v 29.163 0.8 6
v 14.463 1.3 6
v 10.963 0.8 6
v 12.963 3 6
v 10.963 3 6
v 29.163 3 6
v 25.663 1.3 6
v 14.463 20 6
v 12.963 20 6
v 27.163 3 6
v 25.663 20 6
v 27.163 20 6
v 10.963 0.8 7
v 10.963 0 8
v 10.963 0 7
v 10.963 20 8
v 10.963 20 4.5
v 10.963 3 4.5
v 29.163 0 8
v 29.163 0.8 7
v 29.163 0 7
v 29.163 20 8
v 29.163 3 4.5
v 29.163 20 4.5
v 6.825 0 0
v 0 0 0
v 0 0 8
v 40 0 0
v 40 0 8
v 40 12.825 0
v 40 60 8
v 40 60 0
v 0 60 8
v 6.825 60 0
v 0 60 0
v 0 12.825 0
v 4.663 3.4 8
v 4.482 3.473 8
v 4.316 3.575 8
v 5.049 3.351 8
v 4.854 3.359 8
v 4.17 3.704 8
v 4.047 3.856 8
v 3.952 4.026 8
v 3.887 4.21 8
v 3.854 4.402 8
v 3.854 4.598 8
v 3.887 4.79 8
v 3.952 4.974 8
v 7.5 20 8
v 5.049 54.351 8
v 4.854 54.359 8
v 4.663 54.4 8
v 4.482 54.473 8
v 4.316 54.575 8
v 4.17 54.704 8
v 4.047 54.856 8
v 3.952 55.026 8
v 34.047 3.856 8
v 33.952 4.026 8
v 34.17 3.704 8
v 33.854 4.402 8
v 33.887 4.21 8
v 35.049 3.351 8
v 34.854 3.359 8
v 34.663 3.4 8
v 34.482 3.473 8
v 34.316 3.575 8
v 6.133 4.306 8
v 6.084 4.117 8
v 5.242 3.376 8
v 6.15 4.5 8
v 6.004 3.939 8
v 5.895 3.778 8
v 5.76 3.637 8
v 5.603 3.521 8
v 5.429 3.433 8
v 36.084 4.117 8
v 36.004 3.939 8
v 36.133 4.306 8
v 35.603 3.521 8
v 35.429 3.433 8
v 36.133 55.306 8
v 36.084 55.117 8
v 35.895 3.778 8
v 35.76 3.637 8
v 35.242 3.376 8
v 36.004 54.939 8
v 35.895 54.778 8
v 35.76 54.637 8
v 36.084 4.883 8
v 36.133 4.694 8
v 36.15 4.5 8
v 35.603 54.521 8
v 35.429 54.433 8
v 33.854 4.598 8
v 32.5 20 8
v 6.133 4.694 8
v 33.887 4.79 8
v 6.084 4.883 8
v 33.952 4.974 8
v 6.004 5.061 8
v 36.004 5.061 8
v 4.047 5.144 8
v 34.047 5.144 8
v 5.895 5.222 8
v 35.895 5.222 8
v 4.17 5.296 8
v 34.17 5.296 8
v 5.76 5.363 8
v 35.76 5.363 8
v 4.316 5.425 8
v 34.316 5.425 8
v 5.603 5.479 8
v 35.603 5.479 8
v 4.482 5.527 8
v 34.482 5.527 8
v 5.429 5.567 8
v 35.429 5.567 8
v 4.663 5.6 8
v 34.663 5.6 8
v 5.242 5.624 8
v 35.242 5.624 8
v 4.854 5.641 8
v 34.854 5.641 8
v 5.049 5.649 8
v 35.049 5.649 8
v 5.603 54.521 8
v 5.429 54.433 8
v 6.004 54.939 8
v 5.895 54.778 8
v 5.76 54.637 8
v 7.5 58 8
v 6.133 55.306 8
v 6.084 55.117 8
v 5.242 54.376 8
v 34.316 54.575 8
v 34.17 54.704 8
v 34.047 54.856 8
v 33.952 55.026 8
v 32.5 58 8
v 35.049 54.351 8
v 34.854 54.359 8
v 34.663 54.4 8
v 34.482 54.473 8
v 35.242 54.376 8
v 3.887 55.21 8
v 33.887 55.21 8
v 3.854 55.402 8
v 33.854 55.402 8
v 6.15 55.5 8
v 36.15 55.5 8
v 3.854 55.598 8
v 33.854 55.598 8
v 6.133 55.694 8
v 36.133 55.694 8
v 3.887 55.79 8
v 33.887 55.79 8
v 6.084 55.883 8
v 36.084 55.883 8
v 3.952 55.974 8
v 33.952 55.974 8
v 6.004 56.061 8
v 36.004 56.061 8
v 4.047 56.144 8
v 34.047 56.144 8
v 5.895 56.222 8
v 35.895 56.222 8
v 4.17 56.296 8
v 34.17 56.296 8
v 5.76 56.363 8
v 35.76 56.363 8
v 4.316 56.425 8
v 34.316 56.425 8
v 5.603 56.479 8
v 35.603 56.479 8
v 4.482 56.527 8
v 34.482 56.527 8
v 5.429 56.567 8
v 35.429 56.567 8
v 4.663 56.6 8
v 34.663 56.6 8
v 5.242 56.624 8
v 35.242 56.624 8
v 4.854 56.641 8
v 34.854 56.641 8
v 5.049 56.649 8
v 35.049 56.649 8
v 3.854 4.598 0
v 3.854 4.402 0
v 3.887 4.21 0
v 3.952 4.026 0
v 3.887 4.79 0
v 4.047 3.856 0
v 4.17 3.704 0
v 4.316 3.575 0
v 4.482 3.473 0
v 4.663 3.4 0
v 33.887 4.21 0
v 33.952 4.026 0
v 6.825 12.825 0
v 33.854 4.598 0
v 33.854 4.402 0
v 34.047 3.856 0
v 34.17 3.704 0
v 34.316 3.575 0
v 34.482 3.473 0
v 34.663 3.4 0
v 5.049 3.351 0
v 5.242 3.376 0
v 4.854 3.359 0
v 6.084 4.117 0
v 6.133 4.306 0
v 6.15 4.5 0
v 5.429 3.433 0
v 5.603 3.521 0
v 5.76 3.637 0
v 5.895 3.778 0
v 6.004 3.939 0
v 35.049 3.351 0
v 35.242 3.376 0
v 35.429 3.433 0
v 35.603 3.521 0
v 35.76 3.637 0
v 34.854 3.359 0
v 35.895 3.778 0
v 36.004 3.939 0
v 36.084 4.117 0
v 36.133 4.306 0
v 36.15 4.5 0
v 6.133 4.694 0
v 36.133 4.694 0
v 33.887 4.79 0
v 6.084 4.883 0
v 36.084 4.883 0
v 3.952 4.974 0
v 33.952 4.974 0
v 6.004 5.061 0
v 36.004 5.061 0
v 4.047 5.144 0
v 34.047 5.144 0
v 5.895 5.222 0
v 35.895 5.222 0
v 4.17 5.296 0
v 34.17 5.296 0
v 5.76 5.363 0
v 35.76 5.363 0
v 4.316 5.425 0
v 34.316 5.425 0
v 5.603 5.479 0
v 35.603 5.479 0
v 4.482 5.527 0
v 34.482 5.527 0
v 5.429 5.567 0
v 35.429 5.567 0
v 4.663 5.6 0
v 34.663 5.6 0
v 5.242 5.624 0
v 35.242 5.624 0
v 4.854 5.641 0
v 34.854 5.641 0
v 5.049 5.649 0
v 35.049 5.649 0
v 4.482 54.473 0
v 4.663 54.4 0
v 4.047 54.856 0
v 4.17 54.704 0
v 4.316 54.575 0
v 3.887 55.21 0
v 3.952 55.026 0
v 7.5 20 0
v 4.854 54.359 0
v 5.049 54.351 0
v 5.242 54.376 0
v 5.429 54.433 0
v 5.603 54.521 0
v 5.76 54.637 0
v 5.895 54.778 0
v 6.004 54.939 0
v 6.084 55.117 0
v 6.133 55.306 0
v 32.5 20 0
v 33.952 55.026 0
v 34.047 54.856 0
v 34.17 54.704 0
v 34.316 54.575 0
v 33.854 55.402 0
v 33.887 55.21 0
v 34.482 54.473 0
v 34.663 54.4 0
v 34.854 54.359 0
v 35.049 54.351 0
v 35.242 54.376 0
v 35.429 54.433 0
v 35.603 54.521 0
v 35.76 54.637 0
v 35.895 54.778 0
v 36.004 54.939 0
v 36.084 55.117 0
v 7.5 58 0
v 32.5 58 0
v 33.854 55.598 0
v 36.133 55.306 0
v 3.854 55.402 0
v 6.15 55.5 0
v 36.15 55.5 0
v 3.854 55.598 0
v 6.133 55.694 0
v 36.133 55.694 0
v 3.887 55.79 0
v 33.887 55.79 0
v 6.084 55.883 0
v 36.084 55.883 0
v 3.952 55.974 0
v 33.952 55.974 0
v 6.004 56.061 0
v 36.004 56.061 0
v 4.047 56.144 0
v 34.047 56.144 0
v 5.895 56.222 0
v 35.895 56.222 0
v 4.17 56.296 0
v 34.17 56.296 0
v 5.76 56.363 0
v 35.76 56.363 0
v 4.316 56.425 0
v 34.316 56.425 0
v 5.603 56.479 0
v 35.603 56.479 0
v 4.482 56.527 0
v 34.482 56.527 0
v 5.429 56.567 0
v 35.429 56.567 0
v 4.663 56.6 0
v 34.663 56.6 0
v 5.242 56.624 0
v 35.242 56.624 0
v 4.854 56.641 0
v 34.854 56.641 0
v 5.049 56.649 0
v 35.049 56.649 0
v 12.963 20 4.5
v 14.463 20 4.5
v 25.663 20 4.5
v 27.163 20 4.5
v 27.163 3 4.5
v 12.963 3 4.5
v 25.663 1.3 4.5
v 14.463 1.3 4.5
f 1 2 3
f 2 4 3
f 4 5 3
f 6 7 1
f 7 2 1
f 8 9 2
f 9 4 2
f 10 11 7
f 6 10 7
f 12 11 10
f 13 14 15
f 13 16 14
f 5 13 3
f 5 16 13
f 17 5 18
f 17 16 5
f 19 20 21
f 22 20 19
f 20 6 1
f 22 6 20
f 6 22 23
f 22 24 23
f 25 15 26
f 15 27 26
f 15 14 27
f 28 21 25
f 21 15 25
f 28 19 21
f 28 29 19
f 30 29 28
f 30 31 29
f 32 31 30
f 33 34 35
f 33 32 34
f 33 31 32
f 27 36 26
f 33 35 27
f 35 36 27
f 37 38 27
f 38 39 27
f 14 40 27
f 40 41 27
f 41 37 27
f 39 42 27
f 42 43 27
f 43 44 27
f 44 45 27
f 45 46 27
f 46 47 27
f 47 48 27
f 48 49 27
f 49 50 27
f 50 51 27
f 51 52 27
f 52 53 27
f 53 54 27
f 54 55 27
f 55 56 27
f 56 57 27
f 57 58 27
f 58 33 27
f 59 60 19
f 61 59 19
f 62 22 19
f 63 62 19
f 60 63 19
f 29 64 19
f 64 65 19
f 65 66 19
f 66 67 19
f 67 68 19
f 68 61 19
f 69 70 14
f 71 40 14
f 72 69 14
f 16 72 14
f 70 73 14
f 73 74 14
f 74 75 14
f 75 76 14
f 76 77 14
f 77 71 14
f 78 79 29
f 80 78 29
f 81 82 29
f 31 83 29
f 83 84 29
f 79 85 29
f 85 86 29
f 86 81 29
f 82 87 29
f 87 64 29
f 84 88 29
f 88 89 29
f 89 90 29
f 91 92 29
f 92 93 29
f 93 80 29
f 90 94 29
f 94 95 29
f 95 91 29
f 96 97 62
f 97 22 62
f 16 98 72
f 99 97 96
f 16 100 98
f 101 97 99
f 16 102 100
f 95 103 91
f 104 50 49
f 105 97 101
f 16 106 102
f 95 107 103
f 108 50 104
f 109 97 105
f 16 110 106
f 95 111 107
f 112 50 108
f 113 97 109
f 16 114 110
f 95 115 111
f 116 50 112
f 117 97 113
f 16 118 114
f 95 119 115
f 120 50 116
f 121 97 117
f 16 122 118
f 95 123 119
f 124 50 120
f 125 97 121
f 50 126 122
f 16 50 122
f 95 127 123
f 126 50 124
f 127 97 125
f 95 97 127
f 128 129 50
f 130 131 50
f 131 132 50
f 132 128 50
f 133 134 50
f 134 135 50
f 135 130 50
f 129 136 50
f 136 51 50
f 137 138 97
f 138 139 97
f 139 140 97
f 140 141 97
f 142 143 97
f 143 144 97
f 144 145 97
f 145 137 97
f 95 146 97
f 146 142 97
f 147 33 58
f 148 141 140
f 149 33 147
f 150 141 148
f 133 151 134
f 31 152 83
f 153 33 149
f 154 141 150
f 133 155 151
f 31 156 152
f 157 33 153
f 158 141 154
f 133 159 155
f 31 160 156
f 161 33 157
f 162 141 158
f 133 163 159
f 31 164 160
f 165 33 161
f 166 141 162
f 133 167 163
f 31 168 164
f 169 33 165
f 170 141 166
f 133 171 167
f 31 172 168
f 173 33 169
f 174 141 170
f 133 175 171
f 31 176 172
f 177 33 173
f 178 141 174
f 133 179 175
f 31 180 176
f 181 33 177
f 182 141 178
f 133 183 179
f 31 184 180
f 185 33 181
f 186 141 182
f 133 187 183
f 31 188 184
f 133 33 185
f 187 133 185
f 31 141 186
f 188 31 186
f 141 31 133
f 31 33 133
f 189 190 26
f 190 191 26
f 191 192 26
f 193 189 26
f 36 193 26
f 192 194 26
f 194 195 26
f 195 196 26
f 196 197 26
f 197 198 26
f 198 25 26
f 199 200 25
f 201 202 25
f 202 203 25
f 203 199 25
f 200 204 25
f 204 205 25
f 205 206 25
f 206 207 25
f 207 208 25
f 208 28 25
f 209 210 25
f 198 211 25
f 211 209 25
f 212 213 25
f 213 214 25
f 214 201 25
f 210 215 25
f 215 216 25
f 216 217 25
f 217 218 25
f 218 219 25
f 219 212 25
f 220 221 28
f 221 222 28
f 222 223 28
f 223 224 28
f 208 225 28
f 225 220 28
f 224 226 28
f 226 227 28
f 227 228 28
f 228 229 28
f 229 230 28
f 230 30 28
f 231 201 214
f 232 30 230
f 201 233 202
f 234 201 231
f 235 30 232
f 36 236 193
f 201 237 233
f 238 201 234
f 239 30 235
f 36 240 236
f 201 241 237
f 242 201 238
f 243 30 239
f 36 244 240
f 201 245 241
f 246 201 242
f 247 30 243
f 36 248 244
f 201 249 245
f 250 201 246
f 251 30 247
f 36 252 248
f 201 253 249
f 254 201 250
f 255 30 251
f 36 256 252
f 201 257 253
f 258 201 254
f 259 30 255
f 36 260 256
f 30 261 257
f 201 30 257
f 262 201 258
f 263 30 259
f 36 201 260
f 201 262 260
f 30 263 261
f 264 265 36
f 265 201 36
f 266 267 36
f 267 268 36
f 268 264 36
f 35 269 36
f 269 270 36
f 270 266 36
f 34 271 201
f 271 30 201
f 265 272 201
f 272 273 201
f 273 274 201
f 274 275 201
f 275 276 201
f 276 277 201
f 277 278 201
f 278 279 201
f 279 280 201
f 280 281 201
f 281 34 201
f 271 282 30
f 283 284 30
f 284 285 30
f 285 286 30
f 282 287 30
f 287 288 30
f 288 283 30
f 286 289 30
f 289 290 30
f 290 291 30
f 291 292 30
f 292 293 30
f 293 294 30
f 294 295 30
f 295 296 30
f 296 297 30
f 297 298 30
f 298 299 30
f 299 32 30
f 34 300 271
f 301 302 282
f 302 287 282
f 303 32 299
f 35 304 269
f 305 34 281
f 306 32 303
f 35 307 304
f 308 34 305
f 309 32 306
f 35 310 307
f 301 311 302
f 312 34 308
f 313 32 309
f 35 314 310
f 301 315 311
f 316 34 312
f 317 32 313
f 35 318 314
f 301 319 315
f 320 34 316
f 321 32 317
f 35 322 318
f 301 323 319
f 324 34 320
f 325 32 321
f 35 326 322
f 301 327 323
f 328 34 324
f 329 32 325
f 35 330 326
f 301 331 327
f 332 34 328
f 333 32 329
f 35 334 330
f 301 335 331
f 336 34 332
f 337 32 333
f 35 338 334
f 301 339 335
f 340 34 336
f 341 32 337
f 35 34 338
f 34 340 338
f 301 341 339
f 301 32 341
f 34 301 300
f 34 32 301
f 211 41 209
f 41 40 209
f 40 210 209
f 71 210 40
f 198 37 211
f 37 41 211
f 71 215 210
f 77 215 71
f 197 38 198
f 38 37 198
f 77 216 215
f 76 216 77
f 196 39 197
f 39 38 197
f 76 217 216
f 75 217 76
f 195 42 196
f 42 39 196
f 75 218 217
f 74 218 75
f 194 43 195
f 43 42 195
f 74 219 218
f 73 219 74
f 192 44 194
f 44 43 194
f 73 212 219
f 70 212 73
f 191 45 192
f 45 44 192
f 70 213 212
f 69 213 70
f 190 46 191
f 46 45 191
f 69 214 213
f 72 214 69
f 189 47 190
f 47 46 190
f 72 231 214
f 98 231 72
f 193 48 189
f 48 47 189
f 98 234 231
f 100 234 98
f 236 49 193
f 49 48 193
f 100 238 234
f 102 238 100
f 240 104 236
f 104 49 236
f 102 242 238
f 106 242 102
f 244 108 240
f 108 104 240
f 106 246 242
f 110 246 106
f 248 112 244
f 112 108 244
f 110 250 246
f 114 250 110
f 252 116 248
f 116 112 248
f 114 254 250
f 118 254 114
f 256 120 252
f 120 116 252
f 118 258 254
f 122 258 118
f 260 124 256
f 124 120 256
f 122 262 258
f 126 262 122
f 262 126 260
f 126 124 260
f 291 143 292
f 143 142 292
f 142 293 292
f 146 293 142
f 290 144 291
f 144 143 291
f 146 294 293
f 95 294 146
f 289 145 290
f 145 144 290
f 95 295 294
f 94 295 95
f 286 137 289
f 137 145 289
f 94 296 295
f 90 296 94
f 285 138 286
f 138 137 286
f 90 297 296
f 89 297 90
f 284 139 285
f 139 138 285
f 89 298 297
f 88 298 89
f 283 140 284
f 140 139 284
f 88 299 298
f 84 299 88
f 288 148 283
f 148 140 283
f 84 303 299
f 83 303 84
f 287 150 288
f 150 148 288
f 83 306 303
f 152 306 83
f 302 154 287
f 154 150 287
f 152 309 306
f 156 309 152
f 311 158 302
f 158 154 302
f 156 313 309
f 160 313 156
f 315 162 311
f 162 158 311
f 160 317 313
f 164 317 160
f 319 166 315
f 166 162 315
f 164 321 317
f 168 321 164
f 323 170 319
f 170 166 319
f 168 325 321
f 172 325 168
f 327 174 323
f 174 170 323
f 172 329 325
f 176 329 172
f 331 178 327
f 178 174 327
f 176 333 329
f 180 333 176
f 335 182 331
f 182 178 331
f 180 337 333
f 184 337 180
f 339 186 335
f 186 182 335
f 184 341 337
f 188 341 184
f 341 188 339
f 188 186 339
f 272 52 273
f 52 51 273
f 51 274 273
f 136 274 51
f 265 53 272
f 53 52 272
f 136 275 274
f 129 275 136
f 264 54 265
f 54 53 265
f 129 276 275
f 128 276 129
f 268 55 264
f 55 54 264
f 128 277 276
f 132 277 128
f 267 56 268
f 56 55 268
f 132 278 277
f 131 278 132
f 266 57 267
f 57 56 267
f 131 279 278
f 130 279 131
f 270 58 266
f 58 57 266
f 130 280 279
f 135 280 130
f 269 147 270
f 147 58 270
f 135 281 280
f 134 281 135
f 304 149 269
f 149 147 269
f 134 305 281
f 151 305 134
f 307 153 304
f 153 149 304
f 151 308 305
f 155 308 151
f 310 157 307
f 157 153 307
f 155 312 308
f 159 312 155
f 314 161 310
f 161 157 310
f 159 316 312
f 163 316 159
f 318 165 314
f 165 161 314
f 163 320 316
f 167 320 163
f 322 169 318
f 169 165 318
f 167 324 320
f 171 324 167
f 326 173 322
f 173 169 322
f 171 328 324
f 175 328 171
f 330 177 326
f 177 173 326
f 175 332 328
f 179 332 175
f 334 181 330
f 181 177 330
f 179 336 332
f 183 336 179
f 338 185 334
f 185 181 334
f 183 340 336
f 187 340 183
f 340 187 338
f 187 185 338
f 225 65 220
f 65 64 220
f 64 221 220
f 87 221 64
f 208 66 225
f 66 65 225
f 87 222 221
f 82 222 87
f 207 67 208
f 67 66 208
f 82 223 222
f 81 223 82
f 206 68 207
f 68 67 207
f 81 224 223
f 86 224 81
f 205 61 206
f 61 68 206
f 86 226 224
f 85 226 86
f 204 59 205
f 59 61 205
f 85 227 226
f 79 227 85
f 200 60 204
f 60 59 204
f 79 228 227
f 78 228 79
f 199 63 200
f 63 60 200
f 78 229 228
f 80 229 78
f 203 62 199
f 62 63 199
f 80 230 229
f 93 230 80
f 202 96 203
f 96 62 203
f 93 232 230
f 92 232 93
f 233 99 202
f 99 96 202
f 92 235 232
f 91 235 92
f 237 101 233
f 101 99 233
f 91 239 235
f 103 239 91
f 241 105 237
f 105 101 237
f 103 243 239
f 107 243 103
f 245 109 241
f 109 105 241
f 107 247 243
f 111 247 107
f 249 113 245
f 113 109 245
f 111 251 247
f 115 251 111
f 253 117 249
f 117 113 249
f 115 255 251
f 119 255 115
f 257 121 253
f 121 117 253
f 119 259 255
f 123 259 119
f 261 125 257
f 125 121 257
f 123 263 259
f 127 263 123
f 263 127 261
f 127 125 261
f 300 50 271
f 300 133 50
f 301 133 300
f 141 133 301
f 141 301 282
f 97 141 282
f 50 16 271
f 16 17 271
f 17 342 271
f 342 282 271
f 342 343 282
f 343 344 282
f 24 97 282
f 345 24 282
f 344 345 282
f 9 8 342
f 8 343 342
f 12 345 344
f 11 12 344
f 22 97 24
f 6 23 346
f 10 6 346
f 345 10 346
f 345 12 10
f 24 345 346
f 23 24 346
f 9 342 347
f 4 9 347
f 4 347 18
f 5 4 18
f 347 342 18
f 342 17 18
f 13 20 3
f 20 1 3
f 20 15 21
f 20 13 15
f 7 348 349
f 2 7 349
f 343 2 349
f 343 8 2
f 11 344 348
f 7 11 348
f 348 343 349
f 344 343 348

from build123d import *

# Parameters (mm, degrees)
SKETCH1_W           = 60
SKETCH1_H           = 40
BOSS_EXTRUDE1_DEPTH = 8
SKETCH3_R           = 1.15
CUT_EXTRUDE2_DEPTH  = 73.553428589
SKETCH7_W           = 25
SKETCH7_H           = 38
CUT_EXTRUDE6_DEPTH  = 73.553428589
SKETCH8_W           = 18.2
SKETCH8_H           = 45
CUT_EXTRUDE7_DEPTH  = 2
SKETCH9_W           = 2
SKETCH9_H           = 17
CUT_EXTRUDE8_DEPTH  = 1.5
SKETCH10_W          = 18.2
SKETCH10_H          = 0.8
BOSS_EXTRUDE2_DEPTH = 1
SKETCH11_W          = 11.2
SKETCH11_H          = 18.7
CUT_EXTRUDE9_DEPTH  = 1.5


with BuildPart() as part:
    # Sketch1 → Boss-Extrude1 (new body)
    with BuildSketch(Plane(origin=(0, 0, 0), x_dir=(0, 1, 0), z_dir=(0, 0, 1))):
        with Locations((30, -20)):
            Rectangle(SKETCH1_W, SKETCH1_H)
    extrude(amount=BOSS_EXTRUDE1_DEPTH)

    # Sketch3 → Cut-Extrude2 (cut, through all)
    with BuildSketch(Plane.XY.offset(8)):
        with Locations((5, 4.5)):
            Circle(SKETCH3_R)
        with Locations((35, 4.5)):
            Circle(SKETCH3_R)
        with Locations((5, 55.5)):
            Circle(SKETCH3_R)
        with Locations((35, 55.5)):
            Circle(SKETCH3_R)
    extrude(amount=-CUT_EXTRUDE2_DEPTH, mode=Mode.SUBTRACT)

    # Sketch7 → Cut-Extrude6 (cut, through all)
    with BuildSketch(Plane.XY.offset(8)):
        with Locations((20, 39)):
            Rectangle(SKETCH7_W, SKETCH7_H)
    extrude(amount=-CUT_EXTRUDE6_DEPTH, mode=Mode.SUBTRACT)

    # Sketch8 → Cut-Extrude7 (cut)
    with BuildSketch(Plane.XY.offset(8)):
        with Locations((20.062509857, 22.5)):
            Rectangle(SKETCH8_W, SKETCH8_H)
    extrude(amount=-CUT_EXTRUDE7_DEPTH, mode=Mode.SUBTRACT)

    # Sketch9 → Cut-Extrude8 (cut)
    with BuildSketch(Plane.XY.offset(6)):
        with Locations((11.962509857, 11.5)):
            Rectangle(SKETCH9_W, SKETCH9_H)
        with Locations((28.162509857, 11.5)):
            Rectangle(SKETCH9_W, SKETCH9_H)
    extrude(amount=-CUT_EXTRUDE8_DEPTH, mode=Mode.SUBTRACT)

    # Sketch10 → Boss-Extrude2 (add)
    with BuildSketch(Plane.XY.offset(6)):
        with Locations((20.062509857, 0.4)):
            Rectangle(SKETCH10_W, SKETCH10_H)
    extrude(amount=BOSS_EXTRUDE2_DEPTH)

    # Sketch11 → Cut-Extrude9 (cut)
    with BuildSketch(Plane.XY.offset(6)):
        with Locations((20.062509857, 10.65)):
            Rectangle(SKETCH11_W, SKETCH11_H)
    extrude(amount=-CUT_EXTRUDE9_DEPTH, mode=Mode.SUBTRACT)


solid = part.part
